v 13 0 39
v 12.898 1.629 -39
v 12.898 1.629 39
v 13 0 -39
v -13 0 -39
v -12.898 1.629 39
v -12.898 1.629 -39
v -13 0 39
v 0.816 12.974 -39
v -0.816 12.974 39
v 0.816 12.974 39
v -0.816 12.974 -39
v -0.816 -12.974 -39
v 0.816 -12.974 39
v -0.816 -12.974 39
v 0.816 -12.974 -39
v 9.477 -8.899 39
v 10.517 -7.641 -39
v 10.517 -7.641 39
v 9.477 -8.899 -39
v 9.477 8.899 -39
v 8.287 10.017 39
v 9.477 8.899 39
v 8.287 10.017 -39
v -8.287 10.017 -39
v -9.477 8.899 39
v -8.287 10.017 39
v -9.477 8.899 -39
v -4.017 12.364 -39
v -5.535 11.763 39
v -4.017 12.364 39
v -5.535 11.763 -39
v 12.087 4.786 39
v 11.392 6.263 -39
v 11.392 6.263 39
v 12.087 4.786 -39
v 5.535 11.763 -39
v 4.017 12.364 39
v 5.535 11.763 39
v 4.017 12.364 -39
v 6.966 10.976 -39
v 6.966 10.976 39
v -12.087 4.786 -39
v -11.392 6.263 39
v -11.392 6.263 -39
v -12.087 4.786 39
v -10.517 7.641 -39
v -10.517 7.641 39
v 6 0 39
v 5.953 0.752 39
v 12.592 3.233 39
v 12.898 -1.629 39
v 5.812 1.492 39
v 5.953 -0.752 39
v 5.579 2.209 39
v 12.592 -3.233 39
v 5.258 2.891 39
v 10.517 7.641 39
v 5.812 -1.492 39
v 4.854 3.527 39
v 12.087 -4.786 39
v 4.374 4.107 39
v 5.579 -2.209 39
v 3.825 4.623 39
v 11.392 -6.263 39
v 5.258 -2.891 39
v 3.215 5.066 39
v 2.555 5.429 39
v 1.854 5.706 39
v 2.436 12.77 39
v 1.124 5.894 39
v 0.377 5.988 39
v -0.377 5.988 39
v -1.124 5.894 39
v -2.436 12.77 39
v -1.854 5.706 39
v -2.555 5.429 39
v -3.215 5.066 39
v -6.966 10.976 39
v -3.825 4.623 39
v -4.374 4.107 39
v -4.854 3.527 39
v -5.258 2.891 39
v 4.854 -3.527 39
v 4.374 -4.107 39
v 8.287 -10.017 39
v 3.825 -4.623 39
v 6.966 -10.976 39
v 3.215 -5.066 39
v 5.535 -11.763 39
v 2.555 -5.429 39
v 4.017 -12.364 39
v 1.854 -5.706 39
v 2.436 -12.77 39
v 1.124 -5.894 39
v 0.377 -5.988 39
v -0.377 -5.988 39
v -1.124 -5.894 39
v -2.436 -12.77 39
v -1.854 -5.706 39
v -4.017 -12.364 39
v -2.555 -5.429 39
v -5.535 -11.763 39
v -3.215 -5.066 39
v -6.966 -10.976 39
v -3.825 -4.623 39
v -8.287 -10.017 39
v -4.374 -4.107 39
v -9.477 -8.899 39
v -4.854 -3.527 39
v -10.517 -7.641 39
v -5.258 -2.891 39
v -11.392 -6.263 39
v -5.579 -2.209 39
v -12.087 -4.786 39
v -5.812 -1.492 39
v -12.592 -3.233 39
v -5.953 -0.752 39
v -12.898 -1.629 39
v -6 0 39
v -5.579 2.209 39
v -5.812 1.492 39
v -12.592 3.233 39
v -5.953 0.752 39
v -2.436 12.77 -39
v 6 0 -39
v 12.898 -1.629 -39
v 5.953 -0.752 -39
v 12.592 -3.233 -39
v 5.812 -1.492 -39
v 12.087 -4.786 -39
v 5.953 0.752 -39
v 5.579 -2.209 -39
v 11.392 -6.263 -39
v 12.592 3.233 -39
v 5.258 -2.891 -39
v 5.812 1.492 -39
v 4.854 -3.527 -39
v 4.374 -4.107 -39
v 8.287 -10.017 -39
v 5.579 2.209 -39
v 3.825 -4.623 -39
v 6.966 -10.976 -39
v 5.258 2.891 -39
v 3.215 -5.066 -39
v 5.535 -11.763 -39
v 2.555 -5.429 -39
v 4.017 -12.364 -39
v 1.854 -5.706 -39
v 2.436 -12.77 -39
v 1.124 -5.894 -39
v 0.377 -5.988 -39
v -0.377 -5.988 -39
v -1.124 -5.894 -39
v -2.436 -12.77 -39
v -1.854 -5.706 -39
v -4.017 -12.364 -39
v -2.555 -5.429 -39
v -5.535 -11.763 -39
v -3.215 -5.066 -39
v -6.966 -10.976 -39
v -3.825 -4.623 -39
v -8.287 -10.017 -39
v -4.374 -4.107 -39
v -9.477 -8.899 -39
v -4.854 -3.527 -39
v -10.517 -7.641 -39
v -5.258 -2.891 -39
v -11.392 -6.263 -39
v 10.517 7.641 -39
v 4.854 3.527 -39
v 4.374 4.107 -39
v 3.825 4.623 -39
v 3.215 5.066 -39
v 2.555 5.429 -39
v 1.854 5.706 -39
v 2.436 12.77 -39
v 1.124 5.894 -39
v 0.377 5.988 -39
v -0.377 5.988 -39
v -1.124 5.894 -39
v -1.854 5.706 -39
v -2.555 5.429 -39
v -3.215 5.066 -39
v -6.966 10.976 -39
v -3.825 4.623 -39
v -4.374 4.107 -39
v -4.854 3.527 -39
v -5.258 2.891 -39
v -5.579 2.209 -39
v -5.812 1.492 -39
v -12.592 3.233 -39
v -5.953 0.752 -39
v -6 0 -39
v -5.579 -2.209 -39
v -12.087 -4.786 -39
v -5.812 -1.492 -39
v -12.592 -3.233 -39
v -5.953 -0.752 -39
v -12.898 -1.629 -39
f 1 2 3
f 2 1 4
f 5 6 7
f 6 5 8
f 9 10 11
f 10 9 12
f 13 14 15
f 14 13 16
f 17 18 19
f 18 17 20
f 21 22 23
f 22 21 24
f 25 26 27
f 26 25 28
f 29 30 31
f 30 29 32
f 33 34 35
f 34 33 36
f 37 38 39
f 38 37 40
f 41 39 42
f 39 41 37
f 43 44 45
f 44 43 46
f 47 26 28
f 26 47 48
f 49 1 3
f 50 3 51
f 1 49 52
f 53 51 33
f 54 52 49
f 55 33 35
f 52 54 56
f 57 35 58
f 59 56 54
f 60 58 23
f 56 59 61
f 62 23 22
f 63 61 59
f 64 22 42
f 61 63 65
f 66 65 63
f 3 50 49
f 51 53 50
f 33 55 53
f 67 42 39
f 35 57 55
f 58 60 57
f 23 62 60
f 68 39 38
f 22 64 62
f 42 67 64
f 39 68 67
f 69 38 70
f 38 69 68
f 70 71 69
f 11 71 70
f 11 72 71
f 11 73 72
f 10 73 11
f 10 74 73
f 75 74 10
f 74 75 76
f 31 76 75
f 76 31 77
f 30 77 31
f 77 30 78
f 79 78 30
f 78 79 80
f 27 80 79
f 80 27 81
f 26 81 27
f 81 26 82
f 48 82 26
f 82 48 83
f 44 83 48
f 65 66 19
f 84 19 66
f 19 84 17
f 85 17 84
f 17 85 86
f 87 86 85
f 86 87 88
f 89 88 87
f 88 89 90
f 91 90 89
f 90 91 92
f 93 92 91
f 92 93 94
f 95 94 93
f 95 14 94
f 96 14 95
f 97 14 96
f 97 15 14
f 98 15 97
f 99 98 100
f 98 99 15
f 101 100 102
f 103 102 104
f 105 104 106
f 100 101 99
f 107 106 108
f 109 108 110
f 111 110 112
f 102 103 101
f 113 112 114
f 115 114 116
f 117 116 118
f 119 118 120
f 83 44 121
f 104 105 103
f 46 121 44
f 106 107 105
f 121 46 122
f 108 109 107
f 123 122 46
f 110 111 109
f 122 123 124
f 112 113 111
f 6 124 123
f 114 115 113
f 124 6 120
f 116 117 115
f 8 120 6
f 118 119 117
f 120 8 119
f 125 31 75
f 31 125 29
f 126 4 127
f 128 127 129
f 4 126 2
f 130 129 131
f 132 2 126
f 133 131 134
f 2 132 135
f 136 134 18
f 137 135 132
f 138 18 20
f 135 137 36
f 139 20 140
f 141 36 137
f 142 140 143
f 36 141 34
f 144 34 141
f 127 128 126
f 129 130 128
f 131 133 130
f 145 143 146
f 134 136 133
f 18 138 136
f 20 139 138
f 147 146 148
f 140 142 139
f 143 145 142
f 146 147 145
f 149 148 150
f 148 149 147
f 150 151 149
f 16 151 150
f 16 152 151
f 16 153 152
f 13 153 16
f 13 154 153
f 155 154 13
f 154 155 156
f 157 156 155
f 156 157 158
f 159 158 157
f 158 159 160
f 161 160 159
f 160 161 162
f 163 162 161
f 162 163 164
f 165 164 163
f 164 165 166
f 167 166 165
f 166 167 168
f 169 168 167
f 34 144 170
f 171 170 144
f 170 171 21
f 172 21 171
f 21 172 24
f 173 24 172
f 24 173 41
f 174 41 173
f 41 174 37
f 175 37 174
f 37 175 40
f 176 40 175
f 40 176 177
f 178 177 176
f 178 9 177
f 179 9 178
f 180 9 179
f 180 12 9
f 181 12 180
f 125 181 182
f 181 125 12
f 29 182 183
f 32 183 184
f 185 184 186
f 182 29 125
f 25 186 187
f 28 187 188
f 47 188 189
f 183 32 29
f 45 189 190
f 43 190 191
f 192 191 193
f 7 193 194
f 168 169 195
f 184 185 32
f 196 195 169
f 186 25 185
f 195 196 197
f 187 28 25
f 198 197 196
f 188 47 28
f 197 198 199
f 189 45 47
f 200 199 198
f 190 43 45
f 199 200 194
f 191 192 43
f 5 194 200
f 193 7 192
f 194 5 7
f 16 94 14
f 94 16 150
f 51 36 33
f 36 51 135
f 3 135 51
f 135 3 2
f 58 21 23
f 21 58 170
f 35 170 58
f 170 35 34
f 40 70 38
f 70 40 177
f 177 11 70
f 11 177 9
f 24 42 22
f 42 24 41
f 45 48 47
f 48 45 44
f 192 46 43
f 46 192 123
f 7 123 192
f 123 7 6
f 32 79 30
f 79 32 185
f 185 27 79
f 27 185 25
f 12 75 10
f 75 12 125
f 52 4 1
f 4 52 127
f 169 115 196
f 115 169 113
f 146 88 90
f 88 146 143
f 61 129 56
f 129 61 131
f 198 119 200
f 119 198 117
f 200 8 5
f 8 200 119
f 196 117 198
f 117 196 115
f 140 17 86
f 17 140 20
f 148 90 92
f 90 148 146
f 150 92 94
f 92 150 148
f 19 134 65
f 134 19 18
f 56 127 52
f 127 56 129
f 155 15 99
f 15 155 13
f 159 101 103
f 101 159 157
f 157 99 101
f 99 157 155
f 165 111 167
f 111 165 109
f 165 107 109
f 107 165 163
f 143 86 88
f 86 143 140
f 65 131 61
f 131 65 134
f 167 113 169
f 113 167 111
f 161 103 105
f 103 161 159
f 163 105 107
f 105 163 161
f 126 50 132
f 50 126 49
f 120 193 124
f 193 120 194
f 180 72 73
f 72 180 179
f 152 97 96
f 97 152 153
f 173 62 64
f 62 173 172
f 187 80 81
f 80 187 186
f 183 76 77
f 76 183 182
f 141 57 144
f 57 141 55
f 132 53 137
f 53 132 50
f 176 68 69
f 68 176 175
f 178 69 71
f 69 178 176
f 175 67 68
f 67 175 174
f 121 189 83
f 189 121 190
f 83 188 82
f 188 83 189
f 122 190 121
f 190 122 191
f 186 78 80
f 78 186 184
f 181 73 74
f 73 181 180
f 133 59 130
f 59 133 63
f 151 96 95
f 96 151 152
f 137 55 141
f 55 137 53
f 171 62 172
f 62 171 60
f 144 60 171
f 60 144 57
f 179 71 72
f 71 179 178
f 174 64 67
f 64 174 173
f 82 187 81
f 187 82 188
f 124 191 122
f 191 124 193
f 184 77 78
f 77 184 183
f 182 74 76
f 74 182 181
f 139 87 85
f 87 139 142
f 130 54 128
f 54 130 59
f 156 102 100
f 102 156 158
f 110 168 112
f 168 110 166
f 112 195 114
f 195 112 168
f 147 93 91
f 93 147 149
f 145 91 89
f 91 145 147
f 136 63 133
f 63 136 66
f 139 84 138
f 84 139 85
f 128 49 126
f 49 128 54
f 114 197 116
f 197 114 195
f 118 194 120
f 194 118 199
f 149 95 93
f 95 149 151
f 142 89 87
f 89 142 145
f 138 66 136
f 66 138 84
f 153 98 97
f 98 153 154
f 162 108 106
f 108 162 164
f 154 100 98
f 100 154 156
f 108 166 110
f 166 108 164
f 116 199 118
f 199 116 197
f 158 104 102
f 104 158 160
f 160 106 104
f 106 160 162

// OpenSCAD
$fn = 50;


difference() {
	union() {
		translate(v = [0, 0, -39.0000000000]) {
			cylinder(h = 78, r = 13.0000000000);
		}
	}
	union() {
		translate(v = [0, 0, -100.0000000000]) {
			cylinder(h = 200, r = 6);
		}
	}
}
